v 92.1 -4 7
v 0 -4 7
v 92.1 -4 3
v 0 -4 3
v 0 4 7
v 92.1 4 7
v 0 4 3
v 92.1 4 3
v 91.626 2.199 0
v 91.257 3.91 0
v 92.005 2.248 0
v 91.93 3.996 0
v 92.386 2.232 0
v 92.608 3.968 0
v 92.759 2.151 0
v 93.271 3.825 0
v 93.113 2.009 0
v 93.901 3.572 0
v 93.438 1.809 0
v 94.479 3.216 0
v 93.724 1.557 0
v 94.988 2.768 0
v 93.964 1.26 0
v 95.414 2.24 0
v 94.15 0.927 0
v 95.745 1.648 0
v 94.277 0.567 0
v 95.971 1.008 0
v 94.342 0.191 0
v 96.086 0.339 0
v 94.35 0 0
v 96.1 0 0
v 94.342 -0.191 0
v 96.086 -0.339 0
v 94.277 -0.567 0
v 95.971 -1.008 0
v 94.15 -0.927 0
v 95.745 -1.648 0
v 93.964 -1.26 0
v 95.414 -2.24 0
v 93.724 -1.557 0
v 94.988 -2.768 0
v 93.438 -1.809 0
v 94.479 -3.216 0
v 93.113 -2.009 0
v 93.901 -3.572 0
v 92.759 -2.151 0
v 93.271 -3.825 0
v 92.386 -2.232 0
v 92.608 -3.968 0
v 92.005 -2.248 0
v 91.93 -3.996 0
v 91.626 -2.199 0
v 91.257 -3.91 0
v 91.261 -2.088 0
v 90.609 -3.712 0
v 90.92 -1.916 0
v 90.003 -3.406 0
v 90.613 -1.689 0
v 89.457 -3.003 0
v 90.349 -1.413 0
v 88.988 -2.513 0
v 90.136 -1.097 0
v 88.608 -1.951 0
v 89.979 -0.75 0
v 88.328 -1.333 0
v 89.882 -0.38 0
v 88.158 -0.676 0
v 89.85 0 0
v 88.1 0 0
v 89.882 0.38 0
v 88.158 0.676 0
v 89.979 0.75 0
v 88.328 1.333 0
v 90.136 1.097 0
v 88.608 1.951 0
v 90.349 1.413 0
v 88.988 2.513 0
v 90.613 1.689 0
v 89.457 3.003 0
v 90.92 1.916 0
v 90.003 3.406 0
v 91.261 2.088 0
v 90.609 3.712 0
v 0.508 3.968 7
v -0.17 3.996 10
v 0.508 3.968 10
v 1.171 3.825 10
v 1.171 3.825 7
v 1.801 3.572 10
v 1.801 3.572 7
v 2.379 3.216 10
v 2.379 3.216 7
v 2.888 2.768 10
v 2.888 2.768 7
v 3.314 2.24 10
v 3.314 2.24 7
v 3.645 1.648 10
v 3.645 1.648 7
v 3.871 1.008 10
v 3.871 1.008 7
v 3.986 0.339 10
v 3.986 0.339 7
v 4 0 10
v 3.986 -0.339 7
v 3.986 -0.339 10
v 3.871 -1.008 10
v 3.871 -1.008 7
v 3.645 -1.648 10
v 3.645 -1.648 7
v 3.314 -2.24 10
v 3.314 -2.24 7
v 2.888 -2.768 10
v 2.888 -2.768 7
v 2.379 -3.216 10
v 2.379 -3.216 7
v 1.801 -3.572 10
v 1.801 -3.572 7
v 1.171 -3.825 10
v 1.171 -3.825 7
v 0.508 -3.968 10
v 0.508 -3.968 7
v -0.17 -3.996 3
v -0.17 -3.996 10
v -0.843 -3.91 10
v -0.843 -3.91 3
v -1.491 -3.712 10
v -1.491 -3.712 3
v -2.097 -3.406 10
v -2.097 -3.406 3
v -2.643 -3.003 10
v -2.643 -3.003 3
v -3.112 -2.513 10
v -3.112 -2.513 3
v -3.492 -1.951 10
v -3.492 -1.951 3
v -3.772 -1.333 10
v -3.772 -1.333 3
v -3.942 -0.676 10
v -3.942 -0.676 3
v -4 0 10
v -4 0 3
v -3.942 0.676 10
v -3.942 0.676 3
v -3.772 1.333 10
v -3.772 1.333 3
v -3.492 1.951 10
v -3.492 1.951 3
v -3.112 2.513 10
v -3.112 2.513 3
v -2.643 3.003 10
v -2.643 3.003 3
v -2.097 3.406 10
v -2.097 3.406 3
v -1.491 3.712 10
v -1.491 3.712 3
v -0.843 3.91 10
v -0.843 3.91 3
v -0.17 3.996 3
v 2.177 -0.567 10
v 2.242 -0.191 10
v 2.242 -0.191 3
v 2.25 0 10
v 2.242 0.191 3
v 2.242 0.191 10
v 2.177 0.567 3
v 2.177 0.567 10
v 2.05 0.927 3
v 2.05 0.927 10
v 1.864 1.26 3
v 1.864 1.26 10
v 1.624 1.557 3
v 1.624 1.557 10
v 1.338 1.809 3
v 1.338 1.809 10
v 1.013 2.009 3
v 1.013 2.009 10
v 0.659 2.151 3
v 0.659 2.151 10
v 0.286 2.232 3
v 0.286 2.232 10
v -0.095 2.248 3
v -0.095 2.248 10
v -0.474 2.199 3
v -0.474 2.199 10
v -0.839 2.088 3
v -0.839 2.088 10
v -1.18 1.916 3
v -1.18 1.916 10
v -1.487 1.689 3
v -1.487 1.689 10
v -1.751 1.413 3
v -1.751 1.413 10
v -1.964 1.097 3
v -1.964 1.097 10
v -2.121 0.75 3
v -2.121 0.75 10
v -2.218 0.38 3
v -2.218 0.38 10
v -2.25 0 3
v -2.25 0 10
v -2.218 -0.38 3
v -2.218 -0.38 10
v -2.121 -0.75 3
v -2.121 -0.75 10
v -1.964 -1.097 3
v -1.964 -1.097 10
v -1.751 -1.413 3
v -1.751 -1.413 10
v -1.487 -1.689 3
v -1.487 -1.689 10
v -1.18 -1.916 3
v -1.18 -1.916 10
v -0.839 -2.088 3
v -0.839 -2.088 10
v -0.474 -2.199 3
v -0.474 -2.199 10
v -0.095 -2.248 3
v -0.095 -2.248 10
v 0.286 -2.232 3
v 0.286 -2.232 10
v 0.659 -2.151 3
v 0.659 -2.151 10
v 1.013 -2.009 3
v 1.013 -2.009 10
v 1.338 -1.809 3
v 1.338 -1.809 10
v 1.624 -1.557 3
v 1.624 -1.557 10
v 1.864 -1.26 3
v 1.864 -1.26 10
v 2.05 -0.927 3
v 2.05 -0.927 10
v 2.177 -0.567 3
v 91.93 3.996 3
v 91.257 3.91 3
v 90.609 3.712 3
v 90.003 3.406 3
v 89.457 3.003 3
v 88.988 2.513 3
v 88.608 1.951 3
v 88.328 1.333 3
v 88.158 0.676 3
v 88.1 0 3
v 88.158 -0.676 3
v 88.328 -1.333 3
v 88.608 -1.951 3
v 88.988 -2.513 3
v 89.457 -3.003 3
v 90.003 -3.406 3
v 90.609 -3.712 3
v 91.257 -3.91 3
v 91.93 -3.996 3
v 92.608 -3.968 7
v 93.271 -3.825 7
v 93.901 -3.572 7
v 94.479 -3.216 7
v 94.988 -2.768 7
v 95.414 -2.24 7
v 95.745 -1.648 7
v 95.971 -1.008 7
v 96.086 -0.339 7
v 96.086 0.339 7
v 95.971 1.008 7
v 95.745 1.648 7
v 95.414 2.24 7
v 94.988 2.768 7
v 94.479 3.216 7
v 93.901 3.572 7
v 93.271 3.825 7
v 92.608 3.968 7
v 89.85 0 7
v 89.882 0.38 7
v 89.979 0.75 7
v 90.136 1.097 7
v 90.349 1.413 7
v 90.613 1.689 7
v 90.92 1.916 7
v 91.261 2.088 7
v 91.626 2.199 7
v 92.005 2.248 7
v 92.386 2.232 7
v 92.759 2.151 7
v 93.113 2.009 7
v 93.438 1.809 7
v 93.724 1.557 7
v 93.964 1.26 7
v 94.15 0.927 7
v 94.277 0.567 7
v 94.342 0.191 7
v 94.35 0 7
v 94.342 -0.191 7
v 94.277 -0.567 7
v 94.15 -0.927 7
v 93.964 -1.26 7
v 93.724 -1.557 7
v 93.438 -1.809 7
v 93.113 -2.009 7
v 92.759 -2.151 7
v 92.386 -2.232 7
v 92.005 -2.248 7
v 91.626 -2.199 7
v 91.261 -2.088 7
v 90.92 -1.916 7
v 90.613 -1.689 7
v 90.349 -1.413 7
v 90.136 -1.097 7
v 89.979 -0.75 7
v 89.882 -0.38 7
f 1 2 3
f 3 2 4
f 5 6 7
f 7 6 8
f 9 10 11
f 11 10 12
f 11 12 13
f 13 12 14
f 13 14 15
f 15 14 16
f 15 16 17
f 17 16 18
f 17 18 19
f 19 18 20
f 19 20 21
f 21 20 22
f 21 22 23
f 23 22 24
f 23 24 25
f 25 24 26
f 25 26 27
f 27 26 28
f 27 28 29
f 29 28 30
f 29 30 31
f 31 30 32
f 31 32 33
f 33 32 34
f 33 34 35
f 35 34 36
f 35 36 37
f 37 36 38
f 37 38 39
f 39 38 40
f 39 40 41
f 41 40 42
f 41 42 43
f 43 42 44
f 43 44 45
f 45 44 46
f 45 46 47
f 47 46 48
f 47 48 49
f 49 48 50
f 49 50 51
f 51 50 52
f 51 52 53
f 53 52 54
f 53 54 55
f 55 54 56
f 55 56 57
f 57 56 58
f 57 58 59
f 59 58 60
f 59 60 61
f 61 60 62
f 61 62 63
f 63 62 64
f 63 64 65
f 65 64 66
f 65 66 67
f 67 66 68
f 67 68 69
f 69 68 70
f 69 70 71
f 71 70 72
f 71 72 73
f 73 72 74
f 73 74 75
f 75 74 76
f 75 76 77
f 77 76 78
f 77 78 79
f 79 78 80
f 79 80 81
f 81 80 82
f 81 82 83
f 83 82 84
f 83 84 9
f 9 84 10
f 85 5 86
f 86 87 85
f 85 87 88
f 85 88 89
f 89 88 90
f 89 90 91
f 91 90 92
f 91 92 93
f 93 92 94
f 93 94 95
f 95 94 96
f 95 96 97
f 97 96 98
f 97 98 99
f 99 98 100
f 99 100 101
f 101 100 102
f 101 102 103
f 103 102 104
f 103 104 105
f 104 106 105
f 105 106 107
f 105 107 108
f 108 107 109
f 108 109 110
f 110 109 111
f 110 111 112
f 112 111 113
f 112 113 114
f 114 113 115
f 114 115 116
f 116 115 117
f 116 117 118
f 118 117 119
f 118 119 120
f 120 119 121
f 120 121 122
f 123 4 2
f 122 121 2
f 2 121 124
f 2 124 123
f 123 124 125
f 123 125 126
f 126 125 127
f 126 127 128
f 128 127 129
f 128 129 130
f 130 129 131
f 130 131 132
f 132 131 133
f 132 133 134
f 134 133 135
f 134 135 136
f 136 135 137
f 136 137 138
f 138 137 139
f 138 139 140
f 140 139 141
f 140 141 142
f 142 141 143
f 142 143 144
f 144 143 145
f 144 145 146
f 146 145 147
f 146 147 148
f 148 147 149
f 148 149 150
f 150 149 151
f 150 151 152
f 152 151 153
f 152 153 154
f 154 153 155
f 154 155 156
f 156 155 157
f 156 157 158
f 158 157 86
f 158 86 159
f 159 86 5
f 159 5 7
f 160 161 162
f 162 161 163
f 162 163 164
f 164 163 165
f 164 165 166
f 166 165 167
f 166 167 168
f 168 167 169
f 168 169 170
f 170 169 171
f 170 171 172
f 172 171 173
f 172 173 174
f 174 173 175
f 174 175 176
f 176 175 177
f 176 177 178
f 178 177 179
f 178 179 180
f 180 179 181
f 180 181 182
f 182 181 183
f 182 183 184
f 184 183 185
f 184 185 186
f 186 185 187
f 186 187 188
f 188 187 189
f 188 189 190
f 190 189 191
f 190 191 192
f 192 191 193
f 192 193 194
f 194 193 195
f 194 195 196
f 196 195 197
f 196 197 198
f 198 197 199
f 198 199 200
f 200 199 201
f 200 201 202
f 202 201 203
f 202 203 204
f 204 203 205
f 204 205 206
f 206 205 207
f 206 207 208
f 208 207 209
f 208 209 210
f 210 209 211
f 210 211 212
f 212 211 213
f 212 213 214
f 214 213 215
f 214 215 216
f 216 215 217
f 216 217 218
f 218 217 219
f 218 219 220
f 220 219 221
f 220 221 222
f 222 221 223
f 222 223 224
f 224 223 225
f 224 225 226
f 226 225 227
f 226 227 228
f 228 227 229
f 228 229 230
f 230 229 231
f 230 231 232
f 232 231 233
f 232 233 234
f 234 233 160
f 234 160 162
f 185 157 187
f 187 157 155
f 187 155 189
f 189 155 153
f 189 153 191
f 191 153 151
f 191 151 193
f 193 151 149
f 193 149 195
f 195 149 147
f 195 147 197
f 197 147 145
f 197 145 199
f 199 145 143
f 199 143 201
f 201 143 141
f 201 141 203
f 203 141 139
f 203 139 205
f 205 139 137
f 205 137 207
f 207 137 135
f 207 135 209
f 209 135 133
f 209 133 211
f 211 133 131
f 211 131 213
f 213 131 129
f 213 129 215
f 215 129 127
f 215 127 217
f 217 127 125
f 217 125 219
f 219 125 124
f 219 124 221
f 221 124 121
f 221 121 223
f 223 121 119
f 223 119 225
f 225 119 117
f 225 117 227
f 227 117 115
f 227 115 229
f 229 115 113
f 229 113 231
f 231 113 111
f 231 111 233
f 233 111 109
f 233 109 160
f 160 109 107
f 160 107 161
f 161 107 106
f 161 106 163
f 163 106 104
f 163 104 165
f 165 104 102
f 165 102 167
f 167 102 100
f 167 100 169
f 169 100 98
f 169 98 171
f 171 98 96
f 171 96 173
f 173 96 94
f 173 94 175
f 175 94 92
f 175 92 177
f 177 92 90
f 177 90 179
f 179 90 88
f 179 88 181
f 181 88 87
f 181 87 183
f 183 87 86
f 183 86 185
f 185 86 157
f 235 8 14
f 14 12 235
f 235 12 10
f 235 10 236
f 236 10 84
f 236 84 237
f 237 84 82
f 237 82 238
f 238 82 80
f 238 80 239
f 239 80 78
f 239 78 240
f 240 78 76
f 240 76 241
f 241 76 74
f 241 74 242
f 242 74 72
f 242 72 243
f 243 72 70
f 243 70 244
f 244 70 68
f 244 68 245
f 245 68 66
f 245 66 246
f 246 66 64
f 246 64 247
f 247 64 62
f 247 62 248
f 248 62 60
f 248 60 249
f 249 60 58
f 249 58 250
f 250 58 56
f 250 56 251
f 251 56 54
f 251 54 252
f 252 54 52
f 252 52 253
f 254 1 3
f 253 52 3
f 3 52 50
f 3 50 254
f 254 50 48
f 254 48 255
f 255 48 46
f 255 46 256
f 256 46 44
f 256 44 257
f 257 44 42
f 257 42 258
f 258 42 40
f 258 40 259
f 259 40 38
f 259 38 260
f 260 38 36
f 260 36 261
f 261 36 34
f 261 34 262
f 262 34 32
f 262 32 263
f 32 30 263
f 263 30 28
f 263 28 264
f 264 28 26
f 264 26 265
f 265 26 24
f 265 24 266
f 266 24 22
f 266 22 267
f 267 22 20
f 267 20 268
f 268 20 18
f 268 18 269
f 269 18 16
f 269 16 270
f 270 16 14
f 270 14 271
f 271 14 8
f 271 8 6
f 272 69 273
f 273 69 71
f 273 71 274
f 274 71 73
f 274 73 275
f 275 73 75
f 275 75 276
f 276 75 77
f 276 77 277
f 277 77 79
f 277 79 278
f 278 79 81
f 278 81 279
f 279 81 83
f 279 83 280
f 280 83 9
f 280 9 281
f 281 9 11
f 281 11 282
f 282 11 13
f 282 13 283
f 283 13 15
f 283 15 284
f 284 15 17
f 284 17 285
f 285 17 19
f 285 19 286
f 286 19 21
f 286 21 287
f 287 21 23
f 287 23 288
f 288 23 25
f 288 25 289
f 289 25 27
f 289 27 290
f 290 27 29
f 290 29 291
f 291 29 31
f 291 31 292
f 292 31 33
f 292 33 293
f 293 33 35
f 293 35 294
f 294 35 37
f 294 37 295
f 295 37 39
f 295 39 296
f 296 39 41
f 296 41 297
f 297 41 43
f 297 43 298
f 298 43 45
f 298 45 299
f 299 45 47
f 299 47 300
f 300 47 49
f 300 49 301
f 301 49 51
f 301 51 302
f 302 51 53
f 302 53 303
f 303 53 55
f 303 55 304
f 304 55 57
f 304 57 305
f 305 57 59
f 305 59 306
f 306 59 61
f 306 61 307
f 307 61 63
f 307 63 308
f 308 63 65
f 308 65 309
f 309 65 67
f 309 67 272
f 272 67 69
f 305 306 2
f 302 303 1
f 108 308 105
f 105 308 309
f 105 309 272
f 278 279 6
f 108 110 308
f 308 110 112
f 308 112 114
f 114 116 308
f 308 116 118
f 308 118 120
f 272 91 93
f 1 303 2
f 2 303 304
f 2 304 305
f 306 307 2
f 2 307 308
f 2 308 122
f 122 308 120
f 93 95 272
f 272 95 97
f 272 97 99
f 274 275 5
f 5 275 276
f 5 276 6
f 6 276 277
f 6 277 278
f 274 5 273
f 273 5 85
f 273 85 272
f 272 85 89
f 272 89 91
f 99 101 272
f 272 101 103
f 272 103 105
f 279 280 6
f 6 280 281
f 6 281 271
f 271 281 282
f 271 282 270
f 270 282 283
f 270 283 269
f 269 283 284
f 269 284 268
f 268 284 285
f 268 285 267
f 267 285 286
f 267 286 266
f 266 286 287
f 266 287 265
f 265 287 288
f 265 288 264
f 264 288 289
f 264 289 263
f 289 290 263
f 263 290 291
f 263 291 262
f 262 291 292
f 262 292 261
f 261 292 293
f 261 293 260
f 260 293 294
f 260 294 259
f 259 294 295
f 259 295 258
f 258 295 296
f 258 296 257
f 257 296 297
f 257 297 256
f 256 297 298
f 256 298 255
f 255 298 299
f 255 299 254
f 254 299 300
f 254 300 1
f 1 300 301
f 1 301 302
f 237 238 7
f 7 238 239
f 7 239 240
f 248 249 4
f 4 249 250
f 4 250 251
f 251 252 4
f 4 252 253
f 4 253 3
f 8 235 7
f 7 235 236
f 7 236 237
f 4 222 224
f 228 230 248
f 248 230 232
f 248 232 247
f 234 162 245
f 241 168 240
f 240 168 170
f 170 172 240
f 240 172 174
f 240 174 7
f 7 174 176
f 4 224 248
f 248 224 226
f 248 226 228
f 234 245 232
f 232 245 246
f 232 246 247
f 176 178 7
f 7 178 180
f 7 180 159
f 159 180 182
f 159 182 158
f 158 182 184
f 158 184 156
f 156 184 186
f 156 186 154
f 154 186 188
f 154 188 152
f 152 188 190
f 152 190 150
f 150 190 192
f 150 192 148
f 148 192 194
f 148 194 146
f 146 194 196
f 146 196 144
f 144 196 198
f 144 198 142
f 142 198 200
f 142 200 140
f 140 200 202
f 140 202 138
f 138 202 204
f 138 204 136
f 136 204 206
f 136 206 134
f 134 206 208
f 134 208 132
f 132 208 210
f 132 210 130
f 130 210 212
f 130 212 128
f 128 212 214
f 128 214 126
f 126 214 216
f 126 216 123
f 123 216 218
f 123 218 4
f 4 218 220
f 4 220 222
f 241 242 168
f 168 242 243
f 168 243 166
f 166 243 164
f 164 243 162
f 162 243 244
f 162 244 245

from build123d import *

# Parameters (mm, degrees)
SKETCH2_R               = 2.25
BOSS_EXTRUDE1_DEPTH     = 10
CUT_EXTRUDE_THIN1_START = -3
SKETCH3_R               = 104
SKETCH3_R_2             = 4
CUT_EXTRUDE_THIN1_DEPTH = 3
SKETCH4_R               = 104
SKETCH4_R_2             = 4
CUT_EXTRUDE_THIN2_DEPTH = 3


with BuildPart() as part:
    # Sketch2 → Boss-Extrude1 (new body)
    with BuildSketch(Plane.XY):
        with BuildLine():
            Line((0, 4), (92.1, 4))
            ThreePointArc((92.1, 4), (96.1, 0), (92.1, -4))
            Line((92.1, -4), (0, -4))
            ThreePointArc((0, -4), (-4, 0), (0, 4))
        make_face()
        Circle(SKETCH2_R, mode=Mode.SUBTRACT)
        with Locations((92.1, 0)):
            Circle(SKETCH2_R, mode=Mode.SUBTRACT)
    extrude(amount=BOSS_EXTRUDE1_DEPTH)

    # Sketch3 → Cut-Extrude-Thin1 (cut)
    with BuildSketch(Plane.XY.offset(10).offset(CUT_EXTRUDE_THIN1_START)):
        Circle(SKETCH3_R)
        Circle(SKETCH3_R_2, mode=Mode.SUBTRACT)
    extrude(amount=CUT_EXTRUDE_THIN1_DEPTH, mode=Mode.SUBTRACT)

    # Sketch4 → Cut-Extrude-Thin2 (cut)
    with BuildSketch(Plane(origin=(0, 0, 0), x_dir=(-1, 0, 0), z_dir=(0, 0, -1))):
        with Locations((-92.1, 0)):
            Circle(SKETCH4_R)
        with Locations((-92.1, 0)):
            Circle(SKETCH4_R_2, mode=Mode.SUBTRACT)
    extrude(amount=-CUT_EXTRUDE_THIN2_DEPTH, mode=Mode.SUBTRACT)


solid = part.part
